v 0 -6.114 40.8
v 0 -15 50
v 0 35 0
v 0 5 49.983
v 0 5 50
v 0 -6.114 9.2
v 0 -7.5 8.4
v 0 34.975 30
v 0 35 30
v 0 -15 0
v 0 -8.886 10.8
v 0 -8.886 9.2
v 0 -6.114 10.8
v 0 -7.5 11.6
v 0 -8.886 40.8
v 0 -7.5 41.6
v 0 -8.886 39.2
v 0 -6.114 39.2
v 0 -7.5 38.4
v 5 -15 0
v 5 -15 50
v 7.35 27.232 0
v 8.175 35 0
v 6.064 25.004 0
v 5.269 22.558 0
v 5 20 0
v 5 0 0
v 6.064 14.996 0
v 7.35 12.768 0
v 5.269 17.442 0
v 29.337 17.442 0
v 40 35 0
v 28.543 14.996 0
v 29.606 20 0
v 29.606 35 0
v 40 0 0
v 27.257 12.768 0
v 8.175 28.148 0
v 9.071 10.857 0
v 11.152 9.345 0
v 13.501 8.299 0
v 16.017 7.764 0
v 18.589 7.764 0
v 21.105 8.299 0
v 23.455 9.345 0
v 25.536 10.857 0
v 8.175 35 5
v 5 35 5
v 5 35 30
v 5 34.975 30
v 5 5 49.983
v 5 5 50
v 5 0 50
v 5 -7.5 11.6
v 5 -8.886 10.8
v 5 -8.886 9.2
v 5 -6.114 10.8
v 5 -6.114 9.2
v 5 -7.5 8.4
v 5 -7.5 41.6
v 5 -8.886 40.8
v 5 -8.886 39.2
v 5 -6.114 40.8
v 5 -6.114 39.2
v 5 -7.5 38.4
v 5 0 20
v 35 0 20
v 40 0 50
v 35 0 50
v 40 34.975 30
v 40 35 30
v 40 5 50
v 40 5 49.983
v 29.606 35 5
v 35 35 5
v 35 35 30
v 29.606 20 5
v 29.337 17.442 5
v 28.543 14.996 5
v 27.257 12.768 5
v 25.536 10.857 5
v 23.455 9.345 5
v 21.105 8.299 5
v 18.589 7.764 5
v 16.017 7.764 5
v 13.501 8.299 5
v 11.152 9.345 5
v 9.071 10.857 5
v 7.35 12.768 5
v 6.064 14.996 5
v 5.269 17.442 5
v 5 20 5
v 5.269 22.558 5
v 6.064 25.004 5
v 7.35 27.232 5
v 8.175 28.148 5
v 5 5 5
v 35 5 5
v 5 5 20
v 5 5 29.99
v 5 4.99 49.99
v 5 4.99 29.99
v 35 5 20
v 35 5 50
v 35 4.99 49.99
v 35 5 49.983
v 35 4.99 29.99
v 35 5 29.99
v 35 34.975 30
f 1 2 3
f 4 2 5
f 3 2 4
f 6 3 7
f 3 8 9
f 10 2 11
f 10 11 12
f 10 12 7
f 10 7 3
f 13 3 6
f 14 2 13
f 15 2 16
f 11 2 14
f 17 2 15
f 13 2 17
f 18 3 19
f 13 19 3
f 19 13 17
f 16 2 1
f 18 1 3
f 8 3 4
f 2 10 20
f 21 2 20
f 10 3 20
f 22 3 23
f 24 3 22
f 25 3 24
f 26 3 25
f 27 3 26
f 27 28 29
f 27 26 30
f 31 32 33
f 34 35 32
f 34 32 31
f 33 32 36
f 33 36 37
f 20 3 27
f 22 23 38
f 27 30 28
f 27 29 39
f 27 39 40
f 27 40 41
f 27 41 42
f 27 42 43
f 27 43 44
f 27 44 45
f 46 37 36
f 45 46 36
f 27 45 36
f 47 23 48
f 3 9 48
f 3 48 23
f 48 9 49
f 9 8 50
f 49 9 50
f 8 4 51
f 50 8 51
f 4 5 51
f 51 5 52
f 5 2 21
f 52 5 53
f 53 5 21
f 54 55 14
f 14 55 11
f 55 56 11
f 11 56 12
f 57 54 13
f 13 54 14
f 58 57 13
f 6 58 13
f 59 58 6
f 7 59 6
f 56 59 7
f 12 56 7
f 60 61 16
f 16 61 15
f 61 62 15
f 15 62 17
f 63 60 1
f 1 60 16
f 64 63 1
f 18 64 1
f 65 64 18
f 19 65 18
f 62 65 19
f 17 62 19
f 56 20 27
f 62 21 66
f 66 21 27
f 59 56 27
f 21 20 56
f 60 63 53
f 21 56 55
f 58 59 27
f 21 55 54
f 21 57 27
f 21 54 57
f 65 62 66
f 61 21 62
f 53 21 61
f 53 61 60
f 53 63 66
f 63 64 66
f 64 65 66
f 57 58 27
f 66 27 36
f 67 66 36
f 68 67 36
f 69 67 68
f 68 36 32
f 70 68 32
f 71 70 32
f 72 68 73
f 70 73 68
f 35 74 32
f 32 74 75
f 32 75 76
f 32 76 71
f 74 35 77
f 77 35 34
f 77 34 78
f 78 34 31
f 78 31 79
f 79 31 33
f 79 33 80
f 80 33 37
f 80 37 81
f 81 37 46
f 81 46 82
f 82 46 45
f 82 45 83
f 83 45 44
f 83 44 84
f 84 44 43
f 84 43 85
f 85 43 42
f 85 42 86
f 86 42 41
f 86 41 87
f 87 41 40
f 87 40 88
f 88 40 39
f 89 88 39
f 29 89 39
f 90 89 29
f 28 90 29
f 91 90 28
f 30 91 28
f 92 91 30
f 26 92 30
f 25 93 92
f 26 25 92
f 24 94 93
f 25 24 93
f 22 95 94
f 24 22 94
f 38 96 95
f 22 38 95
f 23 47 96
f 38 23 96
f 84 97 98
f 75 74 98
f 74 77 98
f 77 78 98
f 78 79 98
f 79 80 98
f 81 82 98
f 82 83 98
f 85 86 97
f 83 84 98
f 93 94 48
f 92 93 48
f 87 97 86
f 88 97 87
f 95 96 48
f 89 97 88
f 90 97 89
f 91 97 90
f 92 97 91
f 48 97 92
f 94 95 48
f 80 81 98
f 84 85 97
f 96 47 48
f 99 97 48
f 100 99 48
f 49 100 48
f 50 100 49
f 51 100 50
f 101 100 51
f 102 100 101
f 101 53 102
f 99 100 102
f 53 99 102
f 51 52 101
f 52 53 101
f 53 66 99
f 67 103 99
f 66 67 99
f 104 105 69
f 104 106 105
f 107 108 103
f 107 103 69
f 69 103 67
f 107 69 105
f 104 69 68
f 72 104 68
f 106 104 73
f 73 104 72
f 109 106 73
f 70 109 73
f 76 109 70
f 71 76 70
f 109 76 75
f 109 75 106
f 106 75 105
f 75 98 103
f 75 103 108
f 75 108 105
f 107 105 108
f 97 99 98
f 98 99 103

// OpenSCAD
module gusset() 
{
	polyhedron(
   	points=[ [0,0,0],[0,20,0],[0,0,-30],[5,0,0],[5,20,0],[5,0,-30]],
   	faces=[ [0,2,1],[3,4,5],[0,1,4,3],[1,2,5,4],[2,0,3,5] ]                                	);
};

union()
{
	difference()
	{
		cube([40,35,5]);
		translate([5+15.5/16*25.4/2,20,-2]) cylinder(h=10, d=15.5/16*25.4,center=false);
		translate([5+2/16*25.4,20,-2]) cube([13.5/16*25.4,35,10]);
	}

	difference()
	{
		translate([0,0,5]) cube([40,5,45]);
		translate([5,-2,20]) cube([30,10,45]);
	}
	translate([0,5,5]) cube([5,30,25]);
	translate([35,5,5]) cube([5,30,25]);
	translate([0,-15,0]) difference()
	{
		cube([5,15,50]);
		translate([-2,7.5,10]) rotate([0,90,0]) cylinder(h=10,d=3.2);
		translate([-2,7.5,40]) rotate([0,90,0]) cylinder(h=10,d=3.2);
	}
	translate([0,4.99,29.99]) rotate([90,0,0]) gusset();
	translate([35,4.99,29.99]) rotate([90,0,0]) gusset();
	
}
